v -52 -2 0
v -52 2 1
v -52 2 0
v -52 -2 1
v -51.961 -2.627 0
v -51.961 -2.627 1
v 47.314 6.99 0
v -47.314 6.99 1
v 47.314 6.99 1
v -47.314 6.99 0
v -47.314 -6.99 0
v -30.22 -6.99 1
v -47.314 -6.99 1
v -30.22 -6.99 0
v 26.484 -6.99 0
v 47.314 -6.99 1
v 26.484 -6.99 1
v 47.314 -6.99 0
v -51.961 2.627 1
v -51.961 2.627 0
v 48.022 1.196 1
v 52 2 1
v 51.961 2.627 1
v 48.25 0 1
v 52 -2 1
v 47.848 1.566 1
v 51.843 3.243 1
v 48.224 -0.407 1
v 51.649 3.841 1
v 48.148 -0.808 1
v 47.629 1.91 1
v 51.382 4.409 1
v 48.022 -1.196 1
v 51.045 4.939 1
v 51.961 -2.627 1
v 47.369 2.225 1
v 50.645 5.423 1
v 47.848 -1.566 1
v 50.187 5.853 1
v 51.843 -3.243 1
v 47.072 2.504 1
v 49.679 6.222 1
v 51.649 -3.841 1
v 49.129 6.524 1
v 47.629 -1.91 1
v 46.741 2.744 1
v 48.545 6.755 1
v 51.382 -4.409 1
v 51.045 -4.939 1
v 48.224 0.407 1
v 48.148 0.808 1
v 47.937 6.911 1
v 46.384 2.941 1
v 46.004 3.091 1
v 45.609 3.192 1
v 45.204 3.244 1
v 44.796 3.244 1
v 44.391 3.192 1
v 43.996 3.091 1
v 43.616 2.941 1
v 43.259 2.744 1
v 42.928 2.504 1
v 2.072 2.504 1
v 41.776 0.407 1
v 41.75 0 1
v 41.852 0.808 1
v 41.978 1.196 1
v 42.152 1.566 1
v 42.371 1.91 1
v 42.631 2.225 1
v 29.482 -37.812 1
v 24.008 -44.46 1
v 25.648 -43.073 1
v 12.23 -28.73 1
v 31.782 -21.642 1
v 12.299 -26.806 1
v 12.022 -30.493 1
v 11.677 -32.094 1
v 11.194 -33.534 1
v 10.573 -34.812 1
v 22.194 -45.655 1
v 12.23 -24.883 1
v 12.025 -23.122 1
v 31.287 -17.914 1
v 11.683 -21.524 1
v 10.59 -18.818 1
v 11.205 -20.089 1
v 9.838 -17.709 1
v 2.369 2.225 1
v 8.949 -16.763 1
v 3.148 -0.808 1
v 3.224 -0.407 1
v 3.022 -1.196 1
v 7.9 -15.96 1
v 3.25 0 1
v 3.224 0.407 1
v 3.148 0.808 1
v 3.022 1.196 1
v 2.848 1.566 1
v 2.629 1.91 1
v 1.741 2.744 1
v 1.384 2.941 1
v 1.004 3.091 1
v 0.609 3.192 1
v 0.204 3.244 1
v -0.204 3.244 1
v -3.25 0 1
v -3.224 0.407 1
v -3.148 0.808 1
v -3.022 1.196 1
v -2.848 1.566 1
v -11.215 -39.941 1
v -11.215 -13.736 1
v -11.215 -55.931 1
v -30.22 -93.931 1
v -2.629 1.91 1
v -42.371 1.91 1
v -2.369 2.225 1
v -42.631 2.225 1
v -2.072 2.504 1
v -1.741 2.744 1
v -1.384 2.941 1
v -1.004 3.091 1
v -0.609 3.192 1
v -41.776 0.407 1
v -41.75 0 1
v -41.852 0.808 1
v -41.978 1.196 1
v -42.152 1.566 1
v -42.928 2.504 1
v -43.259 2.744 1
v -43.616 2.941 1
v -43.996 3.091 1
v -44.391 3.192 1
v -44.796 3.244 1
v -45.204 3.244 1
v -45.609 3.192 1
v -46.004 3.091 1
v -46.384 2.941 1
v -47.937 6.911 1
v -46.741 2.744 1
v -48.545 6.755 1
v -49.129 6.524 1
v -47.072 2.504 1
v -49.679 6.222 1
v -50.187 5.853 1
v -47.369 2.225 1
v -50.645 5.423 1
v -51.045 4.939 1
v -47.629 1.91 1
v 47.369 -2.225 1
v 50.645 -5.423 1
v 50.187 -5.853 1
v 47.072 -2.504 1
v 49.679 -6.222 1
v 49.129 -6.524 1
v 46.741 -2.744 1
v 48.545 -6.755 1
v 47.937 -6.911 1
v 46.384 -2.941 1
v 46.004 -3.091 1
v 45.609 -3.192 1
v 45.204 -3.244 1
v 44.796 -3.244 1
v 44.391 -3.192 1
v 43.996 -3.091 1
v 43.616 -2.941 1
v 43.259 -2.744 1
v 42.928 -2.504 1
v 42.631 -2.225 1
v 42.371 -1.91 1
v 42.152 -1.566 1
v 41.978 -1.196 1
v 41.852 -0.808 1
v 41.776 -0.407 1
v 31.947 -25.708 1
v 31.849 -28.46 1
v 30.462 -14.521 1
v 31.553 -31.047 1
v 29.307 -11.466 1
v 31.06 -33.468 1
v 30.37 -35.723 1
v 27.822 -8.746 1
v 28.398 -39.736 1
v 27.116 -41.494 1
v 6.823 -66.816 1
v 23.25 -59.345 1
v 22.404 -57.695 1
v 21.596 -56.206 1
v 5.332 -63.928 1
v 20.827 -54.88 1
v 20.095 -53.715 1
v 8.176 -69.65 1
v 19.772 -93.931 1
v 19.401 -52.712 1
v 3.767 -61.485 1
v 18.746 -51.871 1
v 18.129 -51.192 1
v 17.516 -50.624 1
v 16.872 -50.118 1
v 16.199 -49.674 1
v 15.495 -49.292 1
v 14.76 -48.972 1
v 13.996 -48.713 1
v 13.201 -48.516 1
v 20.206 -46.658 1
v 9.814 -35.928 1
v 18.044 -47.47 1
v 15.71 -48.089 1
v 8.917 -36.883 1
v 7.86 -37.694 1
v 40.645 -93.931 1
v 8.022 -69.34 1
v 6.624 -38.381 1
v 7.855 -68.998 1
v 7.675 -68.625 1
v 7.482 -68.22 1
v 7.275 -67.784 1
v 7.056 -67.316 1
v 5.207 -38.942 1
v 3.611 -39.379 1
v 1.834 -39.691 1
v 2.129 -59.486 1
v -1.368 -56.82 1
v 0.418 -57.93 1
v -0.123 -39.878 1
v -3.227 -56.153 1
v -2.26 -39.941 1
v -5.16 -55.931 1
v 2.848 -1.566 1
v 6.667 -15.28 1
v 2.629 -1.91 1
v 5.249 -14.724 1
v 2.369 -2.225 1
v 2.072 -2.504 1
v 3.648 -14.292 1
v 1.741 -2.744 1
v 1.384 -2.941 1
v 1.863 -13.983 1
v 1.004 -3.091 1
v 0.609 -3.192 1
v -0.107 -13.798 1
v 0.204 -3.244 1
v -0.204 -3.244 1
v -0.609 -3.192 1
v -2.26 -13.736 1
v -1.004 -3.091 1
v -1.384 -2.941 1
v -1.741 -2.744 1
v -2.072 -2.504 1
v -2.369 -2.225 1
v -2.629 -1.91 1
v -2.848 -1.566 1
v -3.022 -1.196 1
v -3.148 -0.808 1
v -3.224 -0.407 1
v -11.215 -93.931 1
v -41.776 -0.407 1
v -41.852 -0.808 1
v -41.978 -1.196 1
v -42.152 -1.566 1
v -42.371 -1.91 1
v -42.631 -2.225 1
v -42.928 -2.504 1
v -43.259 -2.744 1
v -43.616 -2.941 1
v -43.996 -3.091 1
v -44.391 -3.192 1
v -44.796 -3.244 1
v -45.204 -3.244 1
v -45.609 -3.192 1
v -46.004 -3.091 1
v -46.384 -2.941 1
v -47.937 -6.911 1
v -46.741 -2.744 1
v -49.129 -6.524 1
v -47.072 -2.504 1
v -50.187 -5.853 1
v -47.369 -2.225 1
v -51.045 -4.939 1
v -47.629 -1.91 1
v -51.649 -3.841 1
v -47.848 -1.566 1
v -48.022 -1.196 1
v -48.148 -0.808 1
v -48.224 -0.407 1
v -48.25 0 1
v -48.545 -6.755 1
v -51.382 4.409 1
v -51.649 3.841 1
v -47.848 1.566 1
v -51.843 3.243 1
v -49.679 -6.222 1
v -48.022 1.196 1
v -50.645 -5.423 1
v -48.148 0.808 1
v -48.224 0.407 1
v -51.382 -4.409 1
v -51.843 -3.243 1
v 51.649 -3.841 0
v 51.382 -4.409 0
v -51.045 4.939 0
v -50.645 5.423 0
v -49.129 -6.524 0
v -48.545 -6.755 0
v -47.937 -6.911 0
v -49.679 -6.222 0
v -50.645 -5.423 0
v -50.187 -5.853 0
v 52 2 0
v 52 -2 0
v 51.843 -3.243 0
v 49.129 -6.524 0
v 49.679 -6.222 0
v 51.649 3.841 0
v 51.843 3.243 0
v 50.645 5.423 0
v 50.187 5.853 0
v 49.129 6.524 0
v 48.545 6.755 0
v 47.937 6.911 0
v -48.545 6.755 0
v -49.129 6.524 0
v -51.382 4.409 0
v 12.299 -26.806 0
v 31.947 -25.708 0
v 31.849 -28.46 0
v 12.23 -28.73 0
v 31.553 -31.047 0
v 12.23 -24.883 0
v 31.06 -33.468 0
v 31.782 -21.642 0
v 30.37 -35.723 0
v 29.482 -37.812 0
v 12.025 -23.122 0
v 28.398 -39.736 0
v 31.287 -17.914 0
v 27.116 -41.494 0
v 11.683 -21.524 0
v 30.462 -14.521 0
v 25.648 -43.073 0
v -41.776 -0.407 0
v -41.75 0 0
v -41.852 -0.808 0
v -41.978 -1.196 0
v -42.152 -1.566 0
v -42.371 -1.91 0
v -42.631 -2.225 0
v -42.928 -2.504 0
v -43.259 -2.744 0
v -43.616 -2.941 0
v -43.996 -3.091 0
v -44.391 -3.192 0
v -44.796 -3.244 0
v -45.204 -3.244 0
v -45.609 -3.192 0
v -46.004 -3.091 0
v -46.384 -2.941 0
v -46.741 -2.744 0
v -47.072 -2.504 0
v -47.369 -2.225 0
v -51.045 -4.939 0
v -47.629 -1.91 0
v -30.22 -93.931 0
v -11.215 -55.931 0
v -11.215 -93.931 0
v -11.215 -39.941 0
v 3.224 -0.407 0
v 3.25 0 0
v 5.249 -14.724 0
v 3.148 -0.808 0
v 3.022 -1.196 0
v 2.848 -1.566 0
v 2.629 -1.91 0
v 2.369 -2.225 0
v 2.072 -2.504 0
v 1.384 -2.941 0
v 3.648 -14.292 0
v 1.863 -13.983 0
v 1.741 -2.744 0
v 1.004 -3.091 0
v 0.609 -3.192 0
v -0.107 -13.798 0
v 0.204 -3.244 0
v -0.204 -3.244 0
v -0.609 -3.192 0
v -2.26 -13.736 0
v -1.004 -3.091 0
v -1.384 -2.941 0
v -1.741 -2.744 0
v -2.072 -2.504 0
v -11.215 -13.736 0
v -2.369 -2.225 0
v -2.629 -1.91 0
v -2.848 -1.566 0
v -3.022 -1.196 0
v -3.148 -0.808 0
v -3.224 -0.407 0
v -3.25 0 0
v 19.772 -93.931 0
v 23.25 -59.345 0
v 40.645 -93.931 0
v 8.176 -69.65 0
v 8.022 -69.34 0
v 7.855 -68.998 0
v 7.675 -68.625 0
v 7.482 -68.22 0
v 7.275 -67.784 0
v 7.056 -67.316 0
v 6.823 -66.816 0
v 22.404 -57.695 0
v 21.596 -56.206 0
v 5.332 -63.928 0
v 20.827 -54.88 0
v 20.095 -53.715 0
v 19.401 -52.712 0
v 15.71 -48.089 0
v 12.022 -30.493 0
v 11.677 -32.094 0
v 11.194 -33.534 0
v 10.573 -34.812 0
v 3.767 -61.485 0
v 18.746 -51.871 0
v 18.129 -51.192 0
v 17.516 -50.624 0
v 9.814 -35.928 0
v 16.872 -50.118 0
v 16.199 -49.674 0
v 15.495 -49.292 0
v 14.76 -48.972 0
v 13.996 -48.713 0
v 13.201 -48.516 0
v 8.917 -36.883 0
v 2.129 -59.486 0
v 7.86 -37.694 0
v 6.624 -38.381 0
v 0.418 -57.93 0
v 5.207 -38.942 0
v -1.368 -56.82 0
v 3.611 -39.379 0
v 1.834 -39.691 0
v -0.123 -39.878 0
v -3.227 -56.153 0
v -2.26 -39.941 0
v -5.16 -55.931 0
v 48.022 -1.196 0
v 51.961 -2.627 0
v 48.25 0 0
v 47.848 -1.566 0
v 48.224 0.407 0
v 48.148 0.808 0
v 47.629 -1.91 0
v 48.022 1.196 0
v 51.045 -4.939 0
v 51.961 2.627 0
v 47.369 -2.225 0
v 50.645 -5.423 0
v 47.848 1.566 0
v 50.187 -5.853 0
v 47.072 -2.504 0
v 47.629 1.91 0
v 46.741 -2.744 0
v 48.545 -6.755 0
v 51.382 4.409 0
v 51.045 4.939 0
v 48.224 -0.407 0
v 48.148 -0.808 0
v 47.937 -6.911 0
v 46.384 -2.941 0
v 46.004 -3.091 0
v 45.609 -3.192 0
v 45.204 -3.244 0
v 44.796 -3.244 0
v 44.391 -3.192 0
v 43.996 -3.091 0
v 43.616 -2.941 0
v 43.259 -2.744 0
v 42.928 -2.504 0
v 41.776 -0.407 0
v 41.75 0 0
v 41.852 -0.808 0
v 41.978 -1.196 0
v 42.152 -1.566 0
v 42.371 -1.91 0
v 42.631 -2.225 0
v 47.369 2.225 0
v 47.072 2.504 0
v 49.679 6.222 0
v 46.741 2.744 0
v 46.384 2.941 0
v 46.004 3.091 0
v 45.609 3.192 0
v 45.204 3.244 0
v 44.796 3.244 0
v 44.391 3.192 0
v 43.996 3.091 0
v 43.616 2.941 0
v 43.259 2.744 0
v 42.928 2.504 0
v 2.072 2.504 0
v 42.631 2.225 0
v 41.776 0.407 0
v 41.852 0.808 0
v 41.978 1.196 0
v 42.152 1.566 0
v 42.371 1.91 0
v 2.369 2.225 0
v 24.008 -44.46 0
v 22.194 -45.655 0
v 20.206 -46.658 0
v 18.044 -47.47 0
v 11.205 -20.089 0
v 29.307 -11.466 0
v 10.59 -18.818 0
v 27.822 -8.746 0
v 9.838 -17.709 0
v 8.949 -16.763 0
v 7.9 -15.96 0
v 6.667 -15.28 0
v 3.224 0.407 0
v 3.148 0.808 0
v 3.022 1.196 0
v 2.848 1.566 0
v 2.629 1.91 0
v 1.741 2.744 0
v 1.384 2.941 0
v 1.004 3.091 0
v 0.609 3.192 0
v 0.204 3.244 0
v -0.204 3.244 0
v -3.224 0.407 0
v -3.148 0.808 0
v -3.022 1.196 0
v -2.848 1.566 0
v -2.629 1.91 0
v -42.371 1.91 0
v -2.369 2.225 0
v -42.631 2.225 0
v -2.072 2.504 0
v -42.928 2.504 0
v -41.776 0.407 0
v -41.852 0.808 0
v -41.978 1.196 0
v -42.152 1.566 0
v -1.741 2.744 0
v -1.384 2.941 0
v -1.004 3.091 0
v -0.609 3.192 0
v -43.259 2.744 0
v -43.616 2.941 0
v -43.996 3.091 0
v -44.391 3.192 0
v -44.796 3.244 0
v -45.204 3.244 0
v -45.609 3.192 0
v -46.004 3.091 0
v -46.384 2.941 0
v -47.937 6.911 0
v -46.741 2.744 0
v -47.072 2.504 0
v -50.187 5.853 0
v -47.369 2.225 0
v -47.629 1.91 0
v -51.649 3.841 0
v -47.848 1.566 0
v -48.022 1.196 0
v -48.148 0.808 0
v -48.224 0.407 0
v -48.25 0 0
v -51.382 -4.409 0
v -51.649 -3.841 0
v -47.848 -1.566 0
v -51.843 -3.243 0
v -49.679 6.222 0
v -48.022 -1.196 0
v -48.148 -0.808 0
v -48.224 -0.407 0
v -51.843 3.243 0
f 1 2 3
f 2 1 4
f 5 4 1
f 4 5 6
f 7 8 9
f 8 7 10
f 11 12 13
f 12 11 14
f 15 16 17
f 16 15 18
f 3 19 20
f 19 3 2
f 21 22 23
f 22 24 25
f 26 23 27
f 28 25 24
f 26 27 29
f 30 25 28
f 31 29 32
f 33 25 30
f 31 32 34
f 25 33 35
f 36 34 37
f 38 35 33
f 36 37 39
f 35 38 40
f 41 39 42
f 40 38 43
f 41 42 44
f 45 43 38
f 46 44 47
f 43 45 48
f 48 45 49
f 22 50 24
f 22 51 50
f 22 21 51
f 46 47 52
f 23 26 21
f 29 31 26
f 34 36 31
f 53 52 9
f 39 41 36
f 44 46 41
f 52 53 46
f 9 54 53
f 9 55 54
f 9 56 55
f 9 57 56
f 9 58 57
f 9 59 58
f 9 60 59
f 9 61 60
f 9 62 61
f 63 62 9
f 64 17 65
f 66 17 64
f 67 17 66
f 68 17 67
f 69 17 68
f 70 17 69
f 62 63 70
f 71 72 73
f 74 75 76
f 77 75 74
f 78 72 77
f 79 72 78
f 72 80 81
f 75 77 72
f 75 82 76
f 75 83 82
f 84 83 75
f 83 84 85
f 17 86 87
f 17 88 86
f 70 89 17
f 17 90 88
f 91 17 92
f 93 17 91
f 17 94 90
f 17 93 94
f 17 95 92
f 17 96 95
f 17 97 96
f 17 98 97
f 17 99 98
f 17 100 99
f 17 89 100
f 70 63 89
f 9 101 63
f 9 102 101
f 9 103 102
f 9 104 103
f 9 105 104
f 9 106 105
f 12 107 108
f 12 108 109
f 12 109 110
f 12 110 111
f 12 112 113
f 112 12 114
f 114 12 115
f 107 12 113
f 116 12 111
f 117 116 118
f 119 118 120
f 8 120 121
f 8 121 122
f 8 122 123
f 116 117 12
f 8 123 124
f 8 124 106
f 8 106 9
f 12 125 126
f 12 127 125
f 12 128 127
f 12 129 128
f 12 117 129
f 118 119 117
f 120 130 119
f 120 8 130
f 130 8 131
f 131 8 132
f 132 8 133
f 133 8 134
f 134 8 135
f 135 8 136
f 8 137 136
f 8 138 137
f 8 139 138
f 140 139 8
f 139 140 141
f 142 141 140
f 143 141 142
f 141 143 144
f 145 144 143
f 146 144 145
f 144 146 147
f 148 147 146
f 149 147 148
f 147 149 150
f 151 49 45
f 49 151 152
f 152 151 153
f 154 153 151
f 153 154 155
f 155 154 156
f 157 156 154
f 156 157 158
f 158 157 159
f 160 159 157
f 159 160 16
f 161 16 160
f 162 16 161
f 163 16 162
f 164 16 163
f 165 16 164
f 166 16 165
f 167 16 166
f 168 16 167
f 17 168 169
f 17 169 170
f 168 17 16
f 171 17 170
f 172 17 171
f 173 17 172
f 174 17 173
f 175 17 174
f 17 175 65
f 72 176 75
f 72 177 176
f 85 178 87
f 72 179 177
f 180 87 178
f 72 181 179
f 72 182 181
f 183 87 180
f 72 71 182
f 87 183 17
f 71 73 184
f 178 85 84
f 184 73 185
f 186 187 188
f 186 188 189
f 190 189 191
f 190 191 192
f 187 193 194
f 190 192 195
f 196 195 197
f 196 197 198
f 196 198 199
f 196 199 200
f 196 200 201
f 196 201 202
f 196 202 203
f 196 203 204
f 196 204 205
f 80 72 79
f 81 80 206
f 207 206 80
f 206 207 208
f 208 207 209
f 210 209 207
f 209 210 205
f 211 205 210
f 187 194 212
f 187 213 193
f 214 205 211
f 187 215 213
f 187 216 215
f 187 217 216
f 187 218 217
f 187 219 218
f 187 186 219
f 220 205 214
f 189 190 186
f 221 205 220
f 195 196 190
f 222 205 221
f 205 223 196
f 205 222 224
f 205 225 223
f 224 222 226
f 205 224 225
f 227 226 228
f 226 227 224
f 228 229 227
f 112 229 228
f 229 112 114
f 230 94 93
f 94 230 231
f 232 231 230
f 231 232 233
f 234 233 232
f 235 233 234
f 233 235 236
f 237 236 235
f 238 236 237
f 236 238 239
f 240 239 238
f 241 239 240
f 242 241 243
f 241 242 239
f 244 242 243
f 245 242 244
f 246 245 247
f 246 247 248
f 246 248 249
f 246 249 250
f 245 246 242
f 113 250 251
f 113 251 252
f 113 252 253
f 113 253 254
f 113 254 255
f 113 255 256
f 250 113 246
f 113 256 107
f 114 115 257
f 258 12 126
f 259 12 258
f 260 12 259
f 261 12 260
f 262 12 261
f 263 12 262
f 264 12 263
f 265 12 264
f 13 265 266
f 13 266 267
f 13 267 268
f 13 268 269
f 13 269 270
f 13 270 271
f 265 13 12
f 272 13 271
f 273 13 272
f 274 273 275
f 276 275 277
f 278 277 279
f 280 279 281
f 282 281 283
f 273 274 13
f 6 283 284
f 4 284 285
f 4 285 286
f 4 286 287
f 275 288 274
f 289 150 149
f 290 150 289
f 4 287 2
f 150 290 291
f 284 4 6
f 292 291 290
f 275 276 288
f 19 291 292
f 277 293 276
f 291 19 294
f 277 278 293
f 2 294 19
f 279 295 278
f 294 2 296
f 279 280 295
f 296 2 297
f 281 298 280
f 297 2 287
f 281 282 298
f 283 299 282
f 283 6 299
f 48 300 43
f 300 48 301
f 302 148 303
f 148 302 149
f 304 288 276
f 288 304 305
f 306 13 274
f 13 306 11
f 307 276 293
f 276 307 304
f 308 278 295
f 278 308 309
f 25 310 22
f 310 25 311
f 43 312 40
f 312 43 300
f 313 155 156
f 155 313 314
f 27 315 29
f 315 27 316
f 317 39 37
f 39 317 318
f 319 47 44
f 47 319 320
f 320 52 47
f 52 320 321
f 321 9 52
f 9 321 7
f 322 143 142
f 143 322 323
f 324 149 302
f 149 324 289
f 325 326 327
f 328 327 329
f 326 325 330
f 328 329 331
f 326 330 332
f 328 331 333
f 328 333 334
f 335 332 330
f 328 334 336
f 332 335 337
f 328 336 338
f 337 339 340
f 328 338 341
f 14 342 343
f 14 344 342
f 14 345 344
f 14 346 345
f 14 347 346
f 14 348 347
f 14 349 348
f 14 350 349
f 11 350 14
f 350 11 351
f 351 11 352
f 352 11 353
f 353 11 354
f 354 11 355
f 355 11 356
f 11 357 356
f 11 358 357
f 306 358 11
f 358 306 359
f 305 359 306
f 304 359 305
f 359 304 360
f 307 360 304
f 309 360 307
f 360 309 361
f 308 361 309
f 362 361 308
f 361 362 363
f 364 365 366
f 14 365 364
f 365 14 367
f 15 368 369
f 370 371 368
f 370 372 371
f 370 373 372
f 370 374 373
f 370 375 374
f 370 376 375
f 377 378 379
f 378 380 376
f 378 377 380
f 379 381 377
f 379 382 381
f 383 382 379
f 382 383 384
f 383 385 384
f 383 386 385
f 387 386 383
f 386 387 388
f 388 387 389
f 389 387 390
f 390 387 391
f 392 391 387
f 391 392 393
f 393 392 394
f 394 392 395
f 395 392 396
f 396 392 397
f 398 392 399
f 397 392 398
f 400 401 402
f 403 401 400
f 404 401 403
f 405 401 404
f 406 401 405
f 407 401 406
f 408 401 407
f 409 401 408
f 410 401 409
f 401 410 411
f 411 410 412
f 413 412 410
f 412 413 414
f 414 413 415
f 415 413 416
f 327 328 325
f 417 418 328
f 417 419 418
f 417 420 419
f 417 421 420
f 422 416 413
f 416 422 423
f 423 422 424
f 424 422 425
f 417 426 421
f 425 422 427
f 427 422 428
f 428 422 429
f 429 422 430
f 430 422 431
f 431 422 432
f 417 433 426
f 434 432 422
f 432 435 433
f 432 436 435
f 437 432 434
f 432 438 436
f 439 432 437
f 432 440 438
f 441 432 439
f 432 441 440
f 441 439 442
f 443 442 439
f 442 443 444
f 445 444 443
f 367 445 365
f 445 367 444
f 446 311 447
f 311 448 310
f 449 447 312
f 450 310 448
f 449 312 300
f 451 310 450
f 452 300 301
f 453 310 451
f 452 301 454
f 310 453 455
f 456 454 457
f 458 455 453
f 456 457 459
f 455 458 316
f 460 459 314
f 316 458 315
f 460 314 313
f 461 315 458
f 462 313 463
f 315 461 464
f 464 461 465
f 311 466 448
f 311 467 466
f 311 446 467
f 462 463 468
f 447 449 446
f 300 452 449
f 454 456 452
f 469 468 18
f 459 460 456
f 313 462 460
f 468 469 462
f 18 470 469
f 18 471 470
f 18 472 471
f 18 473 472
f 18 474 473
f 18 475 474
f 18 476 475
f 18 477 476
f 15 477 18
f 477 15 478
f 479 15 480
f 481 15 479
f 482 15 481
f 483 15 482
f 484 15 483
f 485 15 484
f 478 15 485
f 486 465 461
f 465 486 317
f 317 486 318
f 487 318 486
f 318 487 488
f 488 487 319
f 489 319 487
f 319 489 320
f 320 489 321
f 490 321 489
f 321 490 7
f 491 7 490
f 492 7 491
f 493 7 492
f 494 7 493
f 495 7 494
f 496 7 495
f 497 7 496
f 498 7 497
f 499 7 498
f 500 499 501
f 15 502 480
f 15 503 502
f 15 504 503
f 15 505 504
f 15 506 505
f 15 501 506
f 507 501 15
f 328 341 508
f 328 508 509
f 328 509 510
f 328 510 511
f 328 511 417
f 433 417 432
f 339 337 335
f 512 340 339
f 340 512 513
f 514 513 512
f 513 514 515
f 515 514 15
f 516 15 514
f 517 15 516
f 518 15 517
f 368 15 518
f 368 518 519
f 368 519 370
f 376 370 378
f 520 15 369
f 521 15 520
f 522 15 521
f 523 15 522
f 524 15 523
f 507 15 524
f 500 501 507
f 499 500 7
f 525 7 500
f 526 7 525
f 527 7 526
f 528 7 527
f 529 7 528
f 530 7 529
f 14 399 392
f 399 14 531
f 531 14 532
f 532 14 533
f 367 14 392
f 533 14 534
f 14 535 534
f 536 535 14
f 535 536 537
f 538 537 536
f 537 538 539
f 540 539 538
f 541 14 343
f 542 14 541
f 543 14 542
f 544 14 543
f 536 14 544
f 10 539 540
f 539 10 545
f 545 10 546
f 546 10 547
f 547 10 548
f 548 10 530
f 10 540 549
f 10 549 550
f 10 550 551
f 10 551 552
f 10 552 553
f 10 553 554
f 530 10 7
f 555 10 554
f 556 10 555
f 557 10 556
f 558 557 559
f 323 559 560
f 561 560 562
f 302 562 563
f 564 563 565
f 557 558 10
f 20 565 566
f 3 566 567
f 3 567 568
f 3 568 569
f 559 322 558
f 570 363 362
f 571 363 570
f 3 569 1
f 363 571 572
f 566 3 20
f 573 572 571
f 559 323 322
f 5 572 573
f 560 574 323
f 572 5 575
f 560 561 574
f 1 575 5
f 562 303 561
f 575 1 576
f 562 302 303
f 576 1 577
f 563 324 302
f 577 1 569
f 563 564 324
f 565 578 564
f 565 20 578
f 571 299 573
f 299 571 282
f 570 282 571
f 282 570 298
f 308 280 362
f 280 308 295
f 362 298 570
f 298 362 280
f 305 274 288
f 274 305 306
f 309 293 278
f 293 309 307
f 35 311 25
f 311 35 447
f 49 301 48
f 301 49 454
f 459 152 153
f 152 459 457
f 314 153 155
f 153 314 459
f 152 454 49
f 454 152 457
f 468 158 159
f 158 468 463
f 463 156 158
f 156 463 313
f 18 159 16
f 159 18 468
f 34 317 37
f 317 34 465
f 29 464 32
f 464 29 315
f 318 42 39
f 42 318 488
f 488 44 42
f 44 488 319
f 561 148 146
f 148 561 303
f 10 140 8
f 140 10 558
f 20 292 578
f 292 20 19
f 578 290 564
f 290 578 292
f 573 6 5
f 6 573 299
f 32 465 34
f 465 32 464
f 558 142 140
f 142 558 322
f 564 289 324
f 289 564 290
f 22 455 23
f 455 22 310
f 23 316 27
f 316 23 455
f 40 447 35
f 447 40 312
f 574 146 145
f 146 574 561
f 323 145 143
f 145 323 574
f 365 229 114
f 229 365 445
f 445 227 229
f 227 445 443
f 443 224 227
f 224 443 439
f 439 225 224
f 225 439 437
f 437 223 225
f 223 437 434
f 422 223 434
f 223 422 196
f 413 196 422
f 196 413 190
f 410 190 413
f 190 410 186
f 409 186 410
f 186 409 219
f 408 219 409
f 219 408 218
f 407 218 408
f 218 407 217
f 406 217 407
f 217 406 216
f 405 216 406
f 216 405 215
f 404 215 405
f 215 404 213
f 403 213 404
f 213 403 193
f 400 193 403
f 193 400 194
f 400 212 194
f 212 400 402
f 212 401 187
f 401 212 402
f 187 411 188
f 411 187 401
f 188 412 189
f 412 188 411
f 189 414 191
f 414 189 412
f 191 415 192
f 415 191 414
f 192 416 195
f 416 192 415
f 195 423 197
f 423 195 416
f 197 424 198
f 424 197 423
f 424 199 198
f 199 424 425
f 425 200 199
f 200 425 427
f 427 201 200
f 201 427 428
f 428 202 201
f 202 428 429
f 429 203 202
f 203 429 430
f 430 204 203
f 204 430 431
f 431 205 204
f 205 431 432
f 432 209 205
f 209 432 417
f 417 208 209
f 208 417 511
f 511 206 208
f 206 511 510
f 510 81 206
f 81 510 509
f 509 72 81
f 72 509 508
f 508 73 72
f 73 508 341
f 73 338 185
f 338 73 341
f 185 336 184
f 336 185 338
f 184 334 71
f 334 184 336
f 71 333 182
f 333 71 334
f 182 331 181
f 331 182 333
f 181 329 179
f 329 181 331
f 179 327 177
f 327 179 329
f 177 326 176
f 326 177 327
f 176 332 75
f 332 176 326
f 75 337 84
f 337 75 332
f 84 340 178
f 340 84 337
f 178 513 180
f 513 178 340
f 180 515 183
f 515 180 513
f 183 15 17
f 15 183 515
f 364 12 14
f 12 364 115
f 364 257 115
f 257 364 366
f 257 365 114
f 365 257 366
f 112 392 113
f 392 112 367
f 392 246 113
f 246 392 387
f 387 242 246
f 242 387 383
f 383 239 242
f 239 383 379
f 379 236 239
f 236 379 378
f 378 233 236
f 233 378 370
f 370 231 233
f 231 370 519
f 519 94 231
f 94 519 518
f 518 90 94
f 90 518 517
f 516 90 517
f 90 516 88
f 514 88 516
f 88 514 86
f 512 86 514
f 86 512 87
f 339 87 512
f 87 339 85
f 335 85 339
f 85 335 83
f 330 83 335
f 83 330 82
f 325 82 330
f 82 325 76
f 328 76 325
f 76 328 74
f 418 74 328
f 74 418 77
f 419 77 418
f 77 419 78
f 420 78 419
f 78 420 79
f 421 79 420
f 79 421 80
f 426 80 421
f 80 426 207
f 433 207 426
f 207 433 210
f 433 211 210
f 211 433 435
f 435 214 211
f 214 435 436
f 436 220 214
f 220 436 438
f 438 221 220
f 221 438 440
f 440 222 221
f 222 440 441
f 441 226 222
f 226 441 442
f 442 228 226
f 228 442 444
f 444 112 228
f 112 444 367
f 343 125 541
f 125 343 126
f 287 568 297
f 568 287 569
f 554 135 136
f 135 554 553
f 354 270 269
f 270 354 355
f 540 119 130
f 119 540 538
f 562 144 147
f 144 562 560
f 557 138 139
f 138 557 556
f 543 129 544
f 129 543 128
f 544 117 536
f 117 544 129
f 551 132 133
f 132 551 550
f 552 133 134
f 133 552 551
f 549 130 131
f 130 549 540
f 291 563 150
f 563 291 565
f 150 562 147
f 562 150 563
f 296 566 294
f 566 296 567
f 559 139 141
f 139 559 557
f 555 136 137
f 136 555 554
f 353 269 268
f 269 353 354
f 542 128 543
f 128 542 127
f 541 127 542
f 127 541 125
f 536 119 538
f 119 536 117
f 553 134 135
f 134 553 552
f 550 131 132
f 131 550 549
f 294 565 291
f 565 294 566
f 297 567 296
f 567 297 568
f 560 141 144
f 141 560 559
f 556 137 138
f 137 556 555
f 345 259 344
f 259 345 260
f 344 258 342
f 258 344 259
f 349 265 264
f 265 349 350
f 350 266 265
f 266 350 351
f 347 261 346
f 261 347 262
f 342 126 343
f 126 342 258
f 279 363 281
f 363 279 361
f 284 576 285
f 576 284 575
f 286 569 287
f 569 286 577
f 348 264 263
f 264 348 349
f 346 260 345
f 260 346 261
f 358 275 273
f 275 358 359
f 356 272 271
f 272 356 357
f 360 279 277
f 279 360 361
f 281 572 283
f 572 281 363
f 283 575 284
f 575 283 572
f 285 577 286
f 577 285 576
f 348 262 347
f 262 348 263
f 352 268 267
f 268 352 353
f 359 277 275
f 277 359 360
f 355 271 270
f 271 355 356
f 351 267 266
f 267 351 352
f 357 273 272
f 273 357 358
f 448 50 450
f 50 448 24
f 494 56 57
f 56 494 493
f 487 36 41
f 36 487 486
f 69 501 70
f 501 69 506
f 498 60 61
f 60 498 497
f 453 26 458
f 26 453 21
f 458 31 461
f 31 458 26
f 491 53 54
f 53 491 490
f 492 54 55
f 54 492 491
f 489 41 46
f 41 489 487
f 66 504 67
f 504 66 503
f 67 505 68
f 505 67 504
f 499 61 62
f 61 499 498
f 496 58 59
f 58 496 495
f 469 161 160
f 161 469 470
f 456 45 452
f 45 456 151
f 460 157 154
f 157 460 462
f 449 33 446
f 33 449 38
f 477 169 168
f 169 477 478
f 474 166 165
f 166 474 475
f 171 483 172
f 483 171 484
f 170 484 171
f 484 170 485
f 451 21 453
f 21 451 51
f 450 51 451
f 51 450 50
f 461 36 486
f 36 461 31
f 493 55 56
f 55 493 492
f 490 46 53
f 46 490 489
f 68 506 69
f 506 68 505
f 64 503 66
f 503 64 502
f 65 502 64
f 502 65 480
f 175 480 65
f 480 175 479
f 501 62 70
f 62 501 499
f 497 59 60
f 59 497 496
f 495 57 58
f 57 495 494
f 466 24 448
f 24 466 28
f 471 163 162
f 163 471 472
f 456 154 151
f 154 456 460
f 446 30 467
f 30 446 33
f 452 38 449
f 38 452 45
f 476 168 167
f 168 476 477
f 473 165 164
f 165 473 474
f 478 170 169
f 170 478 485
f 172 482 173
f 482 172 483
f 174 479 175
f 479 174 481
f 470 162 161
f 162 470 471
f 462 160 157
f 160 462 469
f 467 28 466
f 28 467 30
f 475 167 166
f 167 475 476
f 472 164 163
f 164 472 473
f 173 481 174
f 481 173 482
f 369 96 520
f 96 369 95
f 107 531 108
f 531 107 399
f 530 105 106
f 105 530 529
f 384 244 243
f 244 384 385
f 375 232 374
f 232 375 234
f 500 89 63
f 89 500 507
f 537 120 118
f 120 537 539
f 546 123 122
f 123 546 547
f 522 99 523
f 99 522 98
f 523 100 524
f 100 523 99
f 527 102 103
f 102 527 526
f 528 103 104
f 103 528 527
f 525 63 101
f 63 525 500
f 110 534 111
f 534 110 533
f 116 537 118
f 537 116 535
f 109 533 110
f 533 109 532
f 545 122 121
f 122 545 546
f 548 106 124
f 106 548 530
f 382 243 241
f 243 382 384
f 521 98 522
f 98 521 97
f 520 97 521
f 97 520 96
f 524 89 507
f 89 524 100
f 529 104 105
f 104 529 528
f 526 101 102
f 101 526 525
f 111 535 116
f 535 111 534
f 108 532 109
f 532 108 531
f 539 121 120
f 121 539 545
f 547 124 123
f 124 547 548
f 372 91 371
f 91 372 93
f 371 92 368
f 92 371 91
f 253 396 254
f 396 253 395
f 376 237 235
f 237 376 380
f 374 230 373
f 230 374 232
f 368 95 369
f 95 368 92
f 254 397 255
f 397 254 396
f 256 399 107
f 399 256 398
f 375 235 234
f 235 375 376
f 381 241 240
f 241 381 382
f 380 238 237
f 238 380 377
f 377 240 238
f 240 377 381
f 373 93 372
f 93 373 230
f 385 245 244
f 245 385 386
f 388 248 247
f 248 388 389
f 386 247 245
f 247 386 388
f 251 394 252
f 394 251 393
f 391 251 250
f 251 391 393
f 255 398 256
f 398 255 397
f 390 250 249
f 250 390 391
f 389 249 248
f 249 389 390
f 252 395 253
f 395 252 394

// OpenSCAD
$fn = 50;


difference() {
	union() {
		translate(v = [0, 0, 0]) {
			rotate(a = [0, 0, 0]) {
				hull() {
					translate(v = [-47.0000000000, 2.0000000000, 0]) {
						rotate(a = [0, 0, 0]) {
							translate(v = [0, 0, 0]) {
								rotate(a = [0, 0, 0]) {
									cylinder(h = 1, r = 5);
								}
							}
						}
					}
					translate(v = [47.0000000000, 2.0000000000, 0]) {
						rotate(a = [0, 0, 0]) {
							translate(v = [0, 0, 0]) {
								rotate(a = [0, 0, 0]) {
									cylinder(h = 1, r = 5);
								}
							}
						}
					}
					translate(v = [-47.0000000000, -2.0000000000, 0]) {
						rotate(a = [0, 0, 0]) {
							translate(v = [0, 0, 0]) {
								rotate(a = [0, 0, 0]) {
									cylinder(h = 1, r = 5);
								}
							}
						}
					}
					translate(v = [47.0000000000, -2.0000000000, 0]) {
						rotate(a = [0, 0, 0]) {
							translate(v = [0, 0, 0]) {
								rotate(a = [0, 0, 0]) {
									cylinder(h = 1, r = 5);
								}
							}
						}
					}
				}
			}
		}
		translate(v = [0, 0, 0]) {
			rotate(a = [0, 0, 0]) {
				linear_extrude(height = 1) {
					text(font = "DejaVu Sans Mono:style=Bold", halign = "center", size = 95, text = "R", valign = "top");
				}
			}
		}
	}
	union() {
		translate(v = [-45.0000000000, 0.0000000000, -125.0000000000]) {
			rotate(a = [0, 0, 0]) {
				cylinder(h = 250, r = 3.2500000000);
			}
		}
		translate(v = [45.0000000000, 0.0000000000, -125.0000000000]) {
			rotate(a = [0, 0, 0]) {
				cylinder(h = 250, r = 3.2500000000);
			}
		}
		translate(v = [45.0000000000, 0.0000000000, -125.0000000000]) {
			rotate(a = [0, 0, 0]) {
				cylinder(h = 250, r = 3.2500000000);
			}
		}
		translate(v = [0, 0, -125.0000000000]) {
			rotate(a = [0, 0, 0]) {
				cylinder(h = 250, r = 3.2500000000);
			}
		}
	}
}
